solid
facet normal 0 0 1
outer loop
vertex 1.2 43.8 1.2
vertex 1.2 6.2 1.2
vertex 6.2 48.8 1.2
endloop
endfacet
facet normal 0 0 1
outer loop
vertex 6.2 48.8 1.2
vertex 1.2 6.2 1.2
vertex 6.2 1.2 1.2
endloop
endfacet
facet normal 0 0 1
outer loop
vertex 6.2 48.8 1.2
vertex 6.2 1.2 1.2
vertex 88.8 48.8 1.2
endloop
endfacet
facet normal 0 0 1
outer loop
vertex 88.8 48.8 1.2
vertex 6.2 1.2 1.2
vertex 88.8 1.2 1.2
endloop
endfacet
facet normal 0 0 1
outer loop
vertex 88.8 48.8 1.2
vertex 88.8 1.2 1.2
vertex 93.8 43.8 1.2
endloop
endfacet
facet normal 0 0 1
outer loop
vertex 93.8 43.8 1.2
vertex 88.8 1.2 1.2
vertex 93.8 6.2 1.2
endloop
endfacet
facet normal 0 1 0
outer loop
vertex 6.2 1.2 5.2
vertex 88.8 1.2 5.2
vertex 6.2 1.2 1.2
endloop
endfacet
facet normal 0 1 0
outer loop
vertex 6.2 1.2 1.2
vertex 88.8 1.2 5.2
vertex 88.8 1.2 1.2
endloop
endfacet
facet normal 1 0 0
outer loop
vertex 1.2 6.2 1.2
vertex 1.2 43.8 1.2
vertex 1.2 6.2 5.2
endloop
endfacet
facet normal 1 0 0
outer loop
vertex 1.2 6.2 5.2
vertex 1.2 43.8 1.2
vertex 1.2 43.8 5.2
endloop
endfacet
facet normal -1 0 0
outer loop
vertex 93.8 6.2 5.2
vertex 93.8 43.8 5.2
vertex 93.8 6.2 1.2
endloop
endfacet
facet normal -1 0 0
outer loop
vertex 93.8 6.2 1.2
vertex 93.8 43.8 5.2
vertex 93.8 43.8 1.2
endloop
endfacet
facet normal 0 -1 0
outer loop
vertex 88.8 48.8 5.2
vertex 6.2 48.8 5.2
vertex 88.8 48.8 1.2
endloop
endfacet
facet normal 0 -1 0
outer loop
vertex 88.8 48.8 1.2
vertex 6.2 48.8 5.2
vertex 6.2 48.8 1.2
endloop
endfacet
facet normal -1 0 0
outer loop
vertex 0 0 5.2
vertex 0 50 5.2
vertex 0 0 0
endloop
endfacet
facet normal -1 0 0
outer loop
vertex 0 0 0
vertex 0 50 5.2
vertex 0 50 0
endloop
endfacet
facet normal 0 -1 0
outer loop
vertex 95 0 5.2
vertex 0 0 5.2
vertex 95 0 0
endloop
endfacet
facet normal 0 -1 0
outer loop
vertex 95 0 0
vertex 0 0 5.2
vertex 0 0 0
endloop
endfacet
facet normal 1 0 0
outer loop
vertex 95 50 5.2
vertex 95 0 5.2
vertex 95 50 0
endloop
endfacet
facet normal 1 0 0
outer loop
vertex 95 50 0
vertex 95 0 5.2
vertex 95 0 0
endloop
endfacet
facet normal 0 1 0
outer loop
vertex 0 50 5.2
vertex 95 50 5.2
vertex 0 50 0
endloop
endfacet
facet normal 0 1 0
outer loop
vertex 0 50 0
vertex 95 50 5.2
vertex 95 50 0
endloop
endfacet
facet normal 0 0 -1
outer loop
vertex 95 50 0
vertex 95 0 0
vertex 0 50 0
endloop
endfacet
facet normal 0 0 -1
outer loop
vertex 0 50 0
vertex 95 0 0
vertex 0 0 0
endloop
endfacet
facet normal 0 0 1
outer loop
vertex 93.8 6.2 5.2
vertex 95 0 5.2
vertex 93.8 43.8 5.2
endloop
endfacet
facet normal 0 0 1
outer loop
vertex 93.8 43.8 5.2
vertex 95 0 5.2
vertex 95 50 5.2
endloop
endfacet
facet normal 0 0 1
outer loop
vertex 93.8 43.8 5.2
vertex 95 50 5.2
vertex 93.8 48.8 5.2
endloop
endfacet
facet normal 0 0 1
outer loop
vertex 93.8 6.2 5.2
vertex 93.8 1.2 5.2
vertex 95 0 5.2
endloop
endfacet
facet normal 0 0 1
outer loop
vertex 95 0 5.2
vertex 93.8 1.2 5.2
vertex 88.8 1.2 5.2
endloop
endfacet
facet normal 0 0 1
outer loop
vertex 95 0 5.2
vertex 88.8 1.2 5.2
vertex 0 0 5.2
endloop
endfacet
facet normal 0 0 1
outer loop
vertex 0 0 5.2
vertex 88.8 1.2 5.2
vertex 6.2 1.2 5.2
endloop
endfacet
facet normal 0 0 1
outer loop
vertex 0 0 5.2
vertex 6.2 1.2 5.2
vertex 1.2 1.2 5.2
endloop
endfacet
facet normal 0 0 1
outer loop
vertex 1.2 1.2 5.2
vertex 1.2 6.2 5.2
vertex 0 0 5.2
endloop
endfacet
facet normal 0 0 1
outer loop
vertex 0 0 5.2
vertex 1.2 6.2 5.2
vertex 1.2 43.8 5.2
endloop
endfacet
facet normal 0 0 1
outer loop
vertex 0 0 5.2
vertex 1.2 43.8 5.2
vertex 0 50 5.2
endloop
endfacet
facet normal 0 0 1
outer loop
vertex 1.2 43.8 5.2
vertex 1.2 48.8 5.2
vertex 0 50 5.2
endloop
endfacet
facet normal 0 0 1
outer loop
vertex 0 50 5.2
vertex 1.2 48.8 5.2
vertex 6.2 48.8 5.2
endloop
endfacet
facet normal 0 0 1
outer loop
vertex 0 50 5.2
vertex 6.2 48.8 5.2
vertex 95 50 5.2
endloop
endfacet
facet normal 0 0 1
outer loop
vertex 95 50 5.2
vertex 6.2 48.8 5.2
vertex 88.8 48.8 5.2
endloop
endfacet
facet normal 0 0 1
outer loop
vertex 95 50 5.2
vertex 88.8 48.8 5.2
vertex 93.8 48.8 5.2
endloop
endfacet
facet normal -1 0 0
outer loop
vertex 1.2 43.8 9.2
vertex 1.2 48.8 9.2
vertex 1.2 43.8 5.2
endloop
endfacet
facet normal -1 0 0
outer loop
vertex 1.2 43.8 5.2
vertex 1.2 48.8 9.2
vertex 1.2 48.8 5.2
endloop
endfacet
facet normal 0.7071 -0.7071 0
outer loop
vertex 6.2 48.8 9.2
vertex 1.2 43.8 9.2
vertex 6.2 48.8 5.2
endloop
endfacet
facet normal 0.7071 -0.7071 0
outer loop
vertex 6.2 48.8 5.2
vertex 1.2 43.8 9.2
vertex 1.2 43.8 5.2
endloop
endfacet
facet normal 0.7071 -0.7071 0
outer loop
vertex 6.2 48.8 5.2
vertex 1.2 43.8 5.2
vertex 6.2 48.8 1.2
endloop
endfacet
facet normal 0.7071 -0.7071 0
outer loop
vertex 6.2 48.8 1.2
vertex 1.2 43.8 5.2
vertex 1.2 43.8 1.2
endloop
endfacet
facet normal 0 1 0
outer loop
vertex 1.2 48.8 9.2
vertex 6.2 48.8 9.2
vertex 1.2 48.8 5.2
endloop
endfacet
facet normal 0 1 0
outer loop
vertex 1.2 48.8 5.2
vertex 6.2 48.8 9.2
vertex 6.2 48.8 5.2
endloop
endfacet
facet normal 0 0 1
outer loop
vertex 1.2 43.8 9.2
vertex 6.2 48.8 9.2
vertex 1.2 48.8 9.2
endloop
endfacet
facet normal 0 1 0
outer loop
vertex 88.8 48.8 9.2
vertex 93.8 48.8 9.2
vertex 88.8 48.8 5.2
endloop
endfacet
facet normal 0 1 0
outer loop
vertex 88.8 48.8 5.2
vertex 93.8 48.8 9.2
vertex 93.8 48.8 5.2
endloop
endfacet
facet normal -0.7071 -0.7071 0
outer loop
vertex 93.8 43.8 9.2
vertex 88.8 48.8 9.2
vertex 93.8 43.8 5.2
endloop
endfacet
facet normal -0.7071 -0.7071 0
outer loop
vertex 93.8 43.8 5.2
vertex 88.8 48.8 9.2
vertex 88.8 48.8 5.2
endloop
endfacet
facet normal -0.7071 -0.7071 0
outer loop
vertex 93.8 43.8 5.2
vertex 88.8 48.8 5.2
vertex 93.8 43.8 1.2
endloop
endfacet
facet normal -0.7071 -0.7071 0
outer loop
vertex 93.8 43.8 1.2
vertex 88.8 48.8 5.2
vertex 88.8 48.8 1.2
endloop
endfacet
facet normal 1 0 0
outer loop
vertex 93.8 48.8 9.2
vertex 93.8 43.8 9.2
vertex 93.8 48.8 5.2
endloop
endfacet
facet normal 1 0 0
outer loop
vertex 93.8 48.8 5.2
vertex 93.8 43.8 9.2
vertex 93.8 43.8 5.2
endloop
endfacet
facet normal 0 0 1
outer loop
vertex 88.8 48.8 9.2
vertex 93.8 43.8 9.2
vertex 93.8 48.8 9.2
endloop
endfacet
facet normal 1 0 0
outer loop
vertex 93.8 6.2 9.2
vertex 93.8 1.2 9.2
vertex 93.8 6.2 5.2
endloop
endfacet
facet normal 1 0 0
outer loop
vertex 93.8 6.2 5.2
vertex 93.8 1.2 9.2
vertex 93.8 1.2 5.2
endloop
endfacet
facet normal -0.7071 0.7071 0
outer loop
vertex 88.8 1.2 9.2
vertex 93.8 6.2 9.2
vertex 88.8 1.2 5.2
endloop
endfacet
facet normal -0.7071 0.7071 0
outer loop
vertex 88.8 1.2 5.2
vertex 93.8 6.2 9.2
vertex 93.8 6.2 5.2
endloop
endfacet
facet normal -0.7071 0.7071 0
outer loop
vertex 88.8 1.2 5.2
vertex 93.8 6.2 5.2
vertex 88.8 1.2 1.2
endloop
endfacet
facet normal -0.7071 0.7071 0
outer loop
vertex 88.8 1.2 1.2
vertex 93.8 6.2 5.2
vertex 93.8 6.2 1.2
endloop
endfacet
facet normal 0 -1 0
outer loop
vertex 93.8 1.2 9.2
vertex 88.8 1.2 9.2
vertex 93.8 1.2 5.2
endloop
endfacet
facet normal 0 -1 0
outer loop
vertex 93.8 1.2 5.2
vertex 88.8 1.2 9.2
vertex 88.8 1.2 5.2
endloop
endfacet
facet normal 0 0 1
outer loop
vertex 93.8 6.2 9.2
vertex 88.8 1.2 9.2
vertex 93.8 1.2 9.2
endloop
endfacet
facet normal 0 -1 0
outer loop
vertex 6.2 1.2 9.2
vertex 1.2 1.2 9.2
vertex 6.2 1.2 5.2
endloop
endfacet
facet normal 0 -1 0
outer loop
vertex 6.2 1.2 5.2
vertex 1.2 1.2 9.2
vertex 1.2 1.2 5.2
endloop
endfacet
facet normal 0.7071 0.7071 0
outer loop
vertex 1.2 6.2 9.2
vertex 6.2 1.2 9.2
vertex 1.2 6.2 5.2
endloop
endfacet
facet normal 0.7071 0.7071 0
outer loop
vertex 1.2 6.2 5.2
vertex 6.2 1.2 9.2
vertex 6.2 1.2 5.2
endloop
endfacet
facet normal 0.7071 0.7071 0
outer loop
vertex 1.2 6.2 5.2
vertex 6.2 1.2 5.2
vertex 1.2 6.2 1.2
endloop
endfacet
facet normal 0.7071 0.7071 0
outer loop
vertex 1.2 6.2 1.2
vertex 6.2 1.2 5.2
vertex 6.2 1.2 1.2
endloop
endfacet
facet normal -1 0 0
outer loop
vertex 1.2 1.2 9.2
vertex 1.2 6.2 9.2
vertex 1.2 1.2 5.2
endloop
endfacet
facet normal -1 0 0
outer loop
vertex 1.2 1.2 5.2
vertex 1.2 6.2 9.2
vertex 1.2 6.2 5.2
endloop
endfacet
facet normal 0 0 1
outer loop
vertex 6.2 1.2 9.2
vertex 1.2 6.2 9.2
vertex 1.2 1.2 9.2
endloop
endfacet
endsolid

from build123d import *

# Parameters (mm, degrees)
SKICA1_W                = 95
SKICA1_H                = 50
P_IDAT_VYSUNUT_M1_DEPTH = 1.2
SKICA2_W                = 95
SKICA2_H                = 50
SKICA2_W_2              = 92.6
SKICA2_H_2              = 47.6
P_IDAT_VYSUNUT_M2_DEPTH = 4
P_IDAT_VYSUNUT_M3_DEPTH = 8


with BuildPart() as part:
    # Skica1 → Přidat vysunutím1 (new body)
    with BuildSketch(Plane.XY):
        with Locations((47.5, 25)):
            Rectangle(SKICA1_W, SKICA1_H)
    extrude(amount=P_IDAT_VYSUNUT_M1_DEPTH)

    # Skica2 → Přidat vysunutím2 (add)
    with BuildSketch(Plane.XY.offset(1.2)):
        with Locations((47.5, 25)):
            Rectangle(SKICA2_W, SKICA2_H)
        with Locations((47.5, 25)):
            Rectangle(SKICA2_W_2, SKICA2_H_2, mode=Mode.SUBTRACT)
    extrude(amount=P_IDAT_VYSUNUT_M2_DEPTH)

    # Skica3 → Přidat vysunutím3 (add)
    with BuildSketch(Plane.XY.offset(1.2)):
        Polygon((1.2, 48.8), (6.2, 48.8), (1.2, 43.8), align=None)
        Polygon((93.8, 48.8), (93.8, 43.8), (88.8, 48.8), align=None)
        Polygon((93.8, 1.2), (88.8, 1.2), (93.8, 6.2), align=None)
        Polygon((1.2, 1.2), (1.2, 6.2), (6.2, 1.2), align=None)
    extrude(amount=P_IDAT_VYSUNUT_M3_DEPTH)


solid = part.part
